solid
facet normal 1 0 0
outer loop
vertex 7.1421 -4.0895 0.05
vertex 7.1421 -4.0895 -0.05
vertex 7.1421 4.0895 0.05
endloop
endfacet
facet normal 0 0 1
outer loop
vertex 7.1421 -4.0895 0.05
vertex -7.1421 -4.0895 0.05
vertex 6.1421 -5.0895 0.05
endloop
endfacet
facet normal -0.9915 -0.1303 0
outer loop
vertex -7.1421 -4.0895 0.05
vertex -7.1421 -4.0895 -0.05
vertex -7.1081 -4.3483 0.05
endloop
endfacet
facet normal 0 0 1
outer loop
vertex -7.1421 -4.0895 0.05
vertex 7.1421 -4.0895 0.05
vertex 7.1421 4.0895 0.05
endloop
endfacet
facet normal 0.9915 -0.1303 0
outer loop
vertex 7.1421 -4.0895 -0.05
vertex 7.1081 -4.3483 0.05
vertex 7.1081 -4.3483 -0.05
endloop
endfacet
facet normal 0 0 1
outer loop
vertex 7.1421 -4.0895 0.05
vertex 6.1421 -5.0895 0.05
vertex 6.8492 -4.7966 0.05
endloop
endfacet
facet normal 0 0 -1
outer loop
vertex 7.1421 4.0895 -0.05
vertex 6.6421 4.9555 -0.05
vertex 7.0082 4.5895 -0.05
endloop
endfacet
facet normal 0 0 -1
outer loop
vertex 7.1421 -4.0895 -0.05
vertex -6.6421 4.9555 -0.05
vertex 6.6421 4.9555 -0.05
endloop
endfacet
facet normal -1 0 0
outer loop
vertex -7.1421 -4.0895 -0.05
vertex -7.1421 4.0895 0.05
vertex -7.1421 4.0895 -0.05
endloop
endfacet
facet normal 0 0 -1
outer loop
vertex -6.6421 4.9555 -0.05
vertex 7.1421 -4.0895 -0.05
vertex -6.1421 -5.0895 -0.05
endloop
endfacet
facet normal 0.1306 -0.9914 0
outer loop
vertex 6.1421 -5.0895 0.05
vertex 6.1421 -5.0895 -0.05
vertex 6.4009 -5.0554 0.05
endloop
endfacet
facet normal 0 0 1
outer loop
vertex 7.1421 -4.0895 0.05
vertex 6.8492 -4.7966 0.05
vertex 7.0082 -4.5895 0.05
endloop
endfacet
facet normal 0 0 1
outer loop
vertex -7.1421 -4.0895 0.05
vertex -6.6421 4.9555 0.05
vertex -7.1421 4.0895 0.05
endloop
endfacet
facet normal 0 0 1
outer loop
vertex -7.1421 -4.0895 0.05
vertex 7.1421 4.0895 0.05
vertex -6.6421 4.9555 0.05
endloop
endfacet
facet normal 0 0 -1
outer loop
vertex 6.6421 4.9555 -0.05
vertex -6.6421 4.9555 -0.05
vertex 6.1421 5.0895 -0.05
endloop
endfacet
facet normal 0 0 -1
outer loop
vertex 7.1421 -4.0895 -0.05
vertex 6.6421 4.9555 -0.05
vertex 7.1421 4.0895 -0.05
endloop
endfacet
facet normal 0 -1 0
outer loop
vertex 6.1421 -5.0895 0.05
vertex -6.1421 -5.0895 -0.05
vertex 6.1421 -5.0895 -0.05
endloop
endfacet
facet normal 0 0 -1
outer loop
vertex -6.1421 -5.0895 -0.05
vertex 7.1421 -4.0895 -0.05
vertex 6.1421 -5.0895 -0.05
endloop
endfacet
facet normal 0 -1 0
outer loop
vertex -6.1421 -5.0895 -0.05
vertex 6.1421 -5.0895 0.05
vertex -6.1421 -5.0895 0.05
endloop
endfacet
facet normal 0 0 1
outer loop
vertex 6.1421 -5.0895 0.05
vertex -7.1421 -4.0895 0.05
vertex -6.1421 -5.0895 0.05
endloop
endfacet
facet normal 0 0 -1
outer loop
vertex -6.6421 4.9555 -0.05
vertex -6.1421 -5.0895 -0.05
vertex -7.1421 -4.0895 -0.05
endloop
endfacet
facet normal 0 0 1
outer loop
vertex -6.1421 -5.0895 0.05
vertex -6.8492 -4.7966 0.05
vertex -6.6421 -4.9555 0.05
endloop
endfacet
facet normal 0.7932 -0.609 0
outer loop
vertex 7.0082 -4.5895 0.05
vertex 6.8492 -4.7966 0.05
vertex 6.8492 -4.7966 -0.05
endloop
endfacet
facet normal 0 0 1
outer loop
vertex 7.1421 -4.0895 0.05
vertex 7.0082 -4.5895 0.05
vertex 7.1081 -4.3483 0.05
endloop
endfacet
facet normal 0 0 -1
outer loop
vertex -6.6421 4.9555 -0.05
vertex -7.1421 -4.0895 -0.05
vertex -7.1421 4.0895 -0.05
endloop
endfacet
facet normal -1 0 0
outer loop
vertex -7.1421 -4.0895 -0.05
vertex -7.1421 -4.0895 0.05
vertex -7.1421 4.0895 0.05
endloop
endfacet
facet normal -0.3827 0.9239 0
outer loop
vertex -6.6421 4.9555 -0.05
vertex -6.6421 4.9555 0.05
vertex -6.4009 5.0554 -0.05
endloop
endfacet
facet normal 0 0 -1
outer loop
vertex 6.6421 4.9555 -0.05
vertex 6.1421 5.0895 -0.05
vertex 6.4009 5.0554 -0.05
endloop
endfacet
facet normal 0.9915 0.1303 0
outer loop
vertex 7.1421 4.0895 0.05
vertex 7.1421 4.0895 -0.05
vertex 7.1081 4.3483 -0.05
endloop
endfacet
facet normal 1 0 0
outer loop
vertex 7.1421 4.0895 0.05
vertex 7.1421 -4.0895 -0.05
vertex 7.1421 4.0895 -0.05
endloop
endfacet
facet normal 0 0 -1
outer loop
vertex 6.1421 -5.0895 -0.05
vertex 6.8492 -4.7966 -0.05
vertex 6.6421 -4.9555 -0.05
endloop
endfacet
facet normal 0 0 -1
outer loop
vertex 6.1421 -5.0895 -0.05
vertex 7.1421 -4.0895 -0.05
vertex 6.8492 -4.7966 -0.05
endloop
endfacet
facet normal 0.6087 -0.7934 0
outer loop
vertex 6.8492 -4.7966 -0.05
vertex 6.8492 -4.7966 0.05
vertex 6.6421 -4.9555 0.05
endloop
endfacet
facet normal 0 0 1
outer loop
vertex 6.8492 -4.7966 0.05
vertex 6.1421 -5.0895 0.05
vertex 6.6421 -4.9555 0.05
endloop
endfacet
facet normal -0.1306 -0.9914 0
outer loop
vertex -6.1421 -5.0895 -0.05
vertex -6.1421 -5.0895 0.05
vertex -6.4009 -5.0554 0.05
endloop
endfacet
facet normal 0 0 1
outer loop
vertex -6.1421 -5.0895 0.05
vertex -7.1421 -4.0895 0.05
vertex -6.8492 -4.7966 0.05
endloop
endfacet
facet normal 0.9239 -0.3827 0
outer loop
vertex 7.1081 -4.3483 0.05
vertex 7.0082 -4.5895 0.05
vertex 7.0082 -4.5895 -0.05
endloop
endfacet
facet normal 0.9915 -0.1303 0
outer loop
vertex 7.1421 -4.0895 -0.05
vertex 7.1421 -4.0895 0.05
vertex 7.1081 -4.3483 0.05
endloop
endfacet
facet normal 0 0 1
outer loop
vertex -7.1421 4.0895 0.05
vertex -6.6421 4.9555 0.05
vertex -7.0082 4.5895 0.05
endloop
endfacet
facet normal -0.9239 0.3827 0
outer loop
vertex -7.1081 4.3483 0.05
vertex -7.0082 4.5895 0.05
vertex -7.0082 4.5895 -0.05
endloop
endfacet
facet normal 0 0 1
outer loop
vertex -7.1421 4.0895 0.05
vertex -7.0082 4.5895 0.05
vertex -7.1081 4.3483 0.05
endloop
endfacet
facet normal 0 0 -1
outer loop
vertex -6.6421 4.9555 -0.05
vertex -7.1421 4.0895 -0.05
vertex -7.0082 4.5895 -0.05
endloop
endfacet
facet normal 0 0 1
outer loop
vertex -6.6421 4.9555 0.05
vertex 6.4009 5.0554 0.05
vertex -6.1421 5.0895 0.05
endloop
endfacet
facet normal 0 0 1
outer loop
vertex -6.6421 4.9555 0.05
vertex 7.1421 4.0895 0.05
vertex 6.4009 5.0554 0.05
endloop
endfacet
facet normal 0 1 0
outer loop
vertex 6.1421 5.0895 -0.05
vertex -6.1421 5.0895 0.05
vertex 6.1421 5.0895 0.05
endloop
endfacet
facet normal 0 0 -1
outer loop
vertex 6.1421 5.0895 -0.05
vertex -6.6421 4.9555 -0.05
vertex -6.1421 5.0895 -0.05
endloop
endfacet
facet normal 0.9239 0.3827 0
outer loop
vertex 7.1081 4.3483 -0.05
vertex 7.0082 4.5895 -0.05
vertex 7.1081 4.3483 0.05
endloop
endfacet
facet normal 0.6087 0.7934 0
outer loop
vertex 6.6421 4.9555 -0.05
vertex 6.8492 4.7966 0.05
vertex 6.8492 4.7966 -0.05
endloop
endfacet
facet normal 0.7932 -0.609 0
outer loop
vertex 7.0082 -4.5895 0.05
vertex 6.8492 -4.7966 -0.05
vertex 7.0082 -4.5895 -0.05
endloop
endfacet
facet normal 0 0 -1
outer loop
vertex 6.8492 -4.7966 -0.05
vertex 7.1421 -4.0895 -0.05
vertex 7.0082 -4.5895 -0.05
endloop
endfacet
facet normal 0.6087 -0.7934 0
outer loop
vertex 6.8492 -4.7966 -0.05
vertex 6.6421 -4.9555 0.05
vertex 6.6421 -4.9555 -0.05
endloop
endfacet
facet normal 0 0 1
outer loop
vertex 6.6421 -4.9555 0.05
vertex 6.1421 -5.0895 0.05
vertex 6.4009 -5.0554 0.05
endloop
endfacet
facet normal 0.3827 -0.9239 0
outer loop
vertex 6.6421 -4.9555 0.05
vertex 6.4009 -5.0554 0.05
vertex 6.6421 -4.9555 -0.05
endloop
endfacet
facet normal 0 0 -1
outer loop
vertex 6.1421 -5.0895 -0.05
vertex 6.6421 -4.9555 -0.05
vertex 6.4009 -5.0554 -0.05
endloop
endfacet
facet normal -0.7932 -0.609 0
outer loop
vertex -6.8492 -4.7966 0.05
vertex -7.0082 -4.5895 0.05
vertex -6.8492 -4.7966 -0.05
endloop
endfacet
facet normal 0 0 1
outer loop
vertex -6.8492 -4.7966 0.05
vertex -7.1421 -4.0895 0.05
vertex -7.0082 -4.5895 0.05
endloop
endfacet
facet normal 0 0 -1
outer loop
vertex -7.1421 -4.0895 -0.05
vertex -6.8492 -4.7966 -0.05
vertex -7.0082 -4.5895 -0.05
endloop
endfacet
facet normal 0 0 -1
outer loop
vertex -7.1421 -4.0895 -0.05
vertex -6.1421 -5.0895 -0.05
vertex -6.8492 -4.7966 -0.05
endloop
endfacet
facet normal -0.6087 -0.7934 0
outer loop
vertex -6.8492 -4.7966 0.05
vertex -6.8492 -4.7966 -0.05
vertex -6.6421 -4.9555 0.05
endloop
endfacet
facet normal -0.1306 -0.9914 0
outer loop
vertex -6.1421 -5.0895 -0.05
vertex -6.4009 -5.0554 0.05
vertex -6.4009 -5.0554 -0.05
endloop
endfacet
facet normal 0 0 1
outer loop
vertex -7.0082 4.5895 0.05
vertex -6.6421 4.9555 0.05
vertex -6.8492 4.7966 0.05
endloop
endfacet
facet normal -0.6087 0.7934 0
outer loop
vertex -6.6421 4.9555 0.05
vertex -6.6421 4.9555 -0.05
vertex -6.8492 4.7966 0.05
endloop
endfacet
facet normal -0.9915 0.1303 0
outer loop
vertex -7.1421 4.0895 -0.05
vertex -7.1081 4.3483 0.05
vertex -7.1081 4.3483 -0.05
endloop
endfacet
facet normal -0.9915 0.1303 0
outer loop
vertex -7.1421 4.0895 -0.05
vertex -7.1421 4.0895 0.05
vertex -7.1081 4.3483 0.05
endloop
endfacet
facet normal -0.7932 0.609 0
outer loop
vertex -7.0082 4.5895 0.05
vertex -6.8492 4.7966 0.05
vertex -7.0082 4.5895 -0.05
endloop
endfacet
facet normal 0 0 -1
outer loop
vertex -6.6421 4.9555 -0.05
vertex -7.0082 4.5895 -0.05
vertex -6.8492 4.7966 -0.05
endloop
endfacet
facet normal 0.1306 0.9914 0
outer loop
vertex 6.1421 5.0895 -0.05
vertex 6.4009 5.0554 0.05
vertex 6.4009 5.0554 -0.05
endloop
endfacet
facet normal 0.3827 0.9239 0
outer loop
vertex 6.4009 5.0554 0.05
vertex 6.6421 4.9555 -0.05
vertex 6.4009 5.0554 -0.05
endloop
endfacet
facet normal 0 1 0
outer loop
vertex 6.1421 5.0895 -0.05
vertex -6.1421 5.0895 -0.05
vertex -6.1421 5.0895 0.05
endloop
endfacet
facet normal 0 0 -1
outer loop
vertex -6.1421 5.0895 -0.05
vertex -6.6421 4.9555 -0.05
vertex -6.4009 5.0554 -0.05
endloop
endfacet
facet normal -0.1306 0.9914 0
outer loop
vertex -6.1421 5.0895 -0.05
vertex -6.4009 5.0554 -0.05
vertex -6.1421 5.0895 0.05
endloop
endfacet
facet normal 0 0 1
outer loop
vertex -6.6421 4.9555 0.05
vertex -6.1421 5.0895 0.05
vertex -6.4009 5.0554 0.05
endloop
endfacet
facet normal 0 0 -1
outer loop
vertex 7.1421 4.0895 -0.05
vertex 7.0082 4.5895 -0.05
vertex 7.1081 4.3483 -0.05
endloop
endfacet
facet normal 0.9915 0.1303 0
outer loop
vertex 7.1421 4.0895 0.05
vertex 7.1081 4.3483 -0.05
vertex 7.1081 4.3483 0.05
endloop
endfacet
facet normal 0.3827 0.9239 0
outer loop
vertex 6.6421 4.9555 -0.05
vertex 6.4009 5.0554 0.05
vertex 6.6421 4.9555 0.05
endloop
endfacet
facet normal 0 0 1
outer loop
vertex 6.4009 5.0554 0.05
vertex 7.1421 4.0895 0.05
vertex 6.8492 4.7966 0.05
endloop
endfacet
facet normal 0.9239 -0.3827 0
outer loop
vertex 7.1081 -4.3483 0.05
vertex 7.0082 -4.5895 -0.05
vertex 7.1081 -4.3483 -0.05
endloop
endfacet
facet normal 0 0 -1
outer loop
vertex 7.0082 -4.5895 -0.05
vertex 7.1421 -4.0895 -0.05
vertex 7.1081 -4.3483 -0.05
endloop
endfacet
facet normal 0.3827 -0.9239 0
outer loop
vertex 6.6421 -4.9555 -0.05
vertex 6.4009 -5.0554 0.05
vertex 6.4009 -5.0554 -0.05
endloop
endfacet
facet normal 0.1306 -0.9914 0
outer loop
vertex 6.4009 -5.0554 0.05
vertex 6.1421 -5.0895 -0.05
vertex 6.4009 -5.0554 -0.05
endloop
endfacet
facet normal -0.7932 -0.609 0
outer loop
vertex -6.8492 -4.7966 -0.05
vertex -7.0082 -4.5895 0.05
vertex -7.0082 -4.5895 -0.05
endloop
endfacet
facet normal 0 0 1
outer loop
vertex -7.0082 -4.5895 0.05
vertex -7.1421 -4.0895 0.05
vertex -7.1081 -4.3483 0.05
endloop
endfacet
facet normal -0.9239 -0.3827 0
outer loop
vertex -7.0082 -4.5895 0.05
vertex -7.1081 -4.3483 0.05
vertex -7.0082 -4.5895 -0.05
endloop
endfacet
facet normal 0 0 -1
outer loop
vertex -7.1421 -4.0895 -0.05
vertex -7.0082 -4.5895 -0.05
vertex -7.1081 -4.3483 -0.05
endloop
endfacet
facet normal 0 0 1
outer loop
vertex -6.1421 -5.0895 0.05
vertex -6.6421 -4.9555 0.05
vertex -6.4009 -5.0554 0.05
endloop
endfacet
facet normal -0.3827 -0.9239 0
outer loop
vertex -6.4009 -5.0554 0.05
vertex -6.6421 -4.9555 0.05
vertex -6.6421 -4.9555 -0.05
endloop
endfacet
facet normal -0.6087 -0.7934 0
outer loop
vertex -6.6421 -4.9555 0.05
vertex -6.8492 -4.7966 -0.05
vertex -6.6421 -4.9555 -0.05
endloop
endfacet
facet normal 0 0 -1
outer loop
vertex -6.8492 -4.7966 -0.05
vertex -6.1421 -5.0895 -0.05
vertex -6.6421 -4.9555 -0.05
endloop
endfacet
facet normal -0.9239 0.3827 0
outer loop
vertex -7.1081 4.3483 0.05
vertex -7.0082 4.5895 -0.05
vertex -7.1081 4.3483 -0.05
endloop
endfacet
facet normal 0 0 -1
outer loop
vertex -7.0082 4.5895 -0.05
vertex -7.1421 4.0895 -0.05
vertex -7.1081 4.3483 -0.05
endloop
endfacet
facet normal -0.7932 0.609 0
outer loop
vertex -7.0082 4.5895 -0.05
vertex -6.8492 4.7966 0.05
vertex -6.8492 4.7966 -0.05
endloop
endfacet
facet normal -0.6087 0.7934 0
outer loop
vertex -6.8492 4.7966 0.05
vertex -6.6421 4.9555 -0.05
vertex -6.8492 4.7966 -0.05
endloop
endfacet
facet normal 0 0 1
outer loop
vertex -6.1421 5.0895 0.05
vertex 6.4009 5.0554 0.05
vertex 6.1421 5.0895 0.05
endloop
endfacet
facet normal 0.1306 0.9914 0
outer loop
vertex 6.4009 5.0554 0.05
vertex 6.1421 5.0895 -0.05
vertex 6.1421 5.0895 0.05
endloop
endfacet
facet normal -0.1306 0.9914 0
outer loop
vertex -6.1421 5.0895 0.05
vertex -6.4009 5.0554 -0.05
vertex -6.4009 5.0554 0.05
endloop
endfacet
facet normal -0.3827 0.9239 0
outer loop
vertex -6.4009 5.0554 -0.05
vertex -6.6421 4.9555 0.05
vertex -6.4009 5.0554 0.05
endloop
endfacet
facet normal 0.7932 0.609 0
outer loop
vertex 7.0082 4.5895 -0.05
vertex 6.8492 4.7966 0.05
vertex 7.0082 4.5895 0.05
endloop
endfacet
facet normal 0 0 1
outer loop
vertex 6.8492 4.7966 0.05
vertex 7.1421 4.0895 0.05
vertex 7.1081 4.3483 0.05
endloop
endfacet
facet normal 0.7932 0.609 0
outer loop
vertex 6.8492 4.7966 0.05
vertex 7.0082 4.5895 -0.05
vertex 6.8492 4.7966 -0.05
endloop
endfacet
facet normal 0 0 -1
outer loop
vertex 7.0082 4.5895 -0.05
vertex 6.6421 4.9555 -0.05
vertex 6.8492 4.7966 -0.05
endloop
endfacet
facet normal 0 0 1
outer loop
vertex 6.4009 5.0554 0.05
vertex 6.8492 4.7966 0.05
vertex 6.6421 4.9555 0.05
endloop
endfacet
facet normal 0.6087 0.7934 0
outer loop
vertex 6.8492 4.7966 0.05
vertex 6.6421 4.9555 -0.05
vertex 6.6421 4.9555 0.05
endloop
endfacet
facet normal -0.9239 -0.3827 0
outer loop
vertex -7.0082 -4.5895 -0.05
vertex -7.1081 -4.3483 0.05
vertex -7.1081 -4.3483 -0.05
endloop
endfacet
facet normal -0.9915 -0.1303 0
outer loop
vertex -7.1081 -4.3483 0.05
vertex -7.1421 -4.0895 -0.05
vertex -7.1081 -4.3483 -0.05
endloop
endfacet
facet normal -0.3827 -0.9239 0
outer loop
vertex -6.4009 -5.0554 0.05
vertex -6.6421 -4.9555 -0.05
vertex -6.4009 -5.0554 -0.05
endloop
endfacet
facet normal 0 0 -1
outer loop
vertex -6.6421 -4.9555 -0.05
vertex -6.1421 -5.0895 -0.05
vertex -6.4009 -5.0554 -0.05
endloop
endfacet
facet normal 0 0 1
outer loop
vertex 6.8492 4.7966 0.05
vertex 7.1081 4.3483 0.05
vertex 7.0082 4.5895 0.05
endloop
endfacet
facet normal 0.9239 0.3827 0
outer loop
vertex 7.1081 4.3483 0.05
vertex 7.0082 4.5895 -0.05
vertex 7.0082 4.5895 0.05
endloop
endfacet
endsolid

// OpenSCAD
// file: def.scad
round_radius = 1.25;
sticker_margin = 3;
sticker_round_radius = 1;
total_size = 75;
base_size = (total_size - round_radius * 4) / (4 + sqrt(2));
cut1_dis = base_size * sqrt(2) / 2;
cut2_dis = base_size * (1 + sqrt(2) / 2);
cut2_corner_dis = base_size * (sqrt(2) / 2 * sqrt(3) + 1 / 3 * sqrt(3));
inf = total_size * 10;
// main file
include <def.scad>

module small_sticker() {
    minkowski() {
        cube([base_size * sqrt(2) - sticker_margin * 2, base_size + round_radius - sticker_margin * 2, 0.05], center = true);
        cylinder(r = sticker_round_radius, h = 0.05, center = true, $fn = 24);
    }
}

small_sticker();
